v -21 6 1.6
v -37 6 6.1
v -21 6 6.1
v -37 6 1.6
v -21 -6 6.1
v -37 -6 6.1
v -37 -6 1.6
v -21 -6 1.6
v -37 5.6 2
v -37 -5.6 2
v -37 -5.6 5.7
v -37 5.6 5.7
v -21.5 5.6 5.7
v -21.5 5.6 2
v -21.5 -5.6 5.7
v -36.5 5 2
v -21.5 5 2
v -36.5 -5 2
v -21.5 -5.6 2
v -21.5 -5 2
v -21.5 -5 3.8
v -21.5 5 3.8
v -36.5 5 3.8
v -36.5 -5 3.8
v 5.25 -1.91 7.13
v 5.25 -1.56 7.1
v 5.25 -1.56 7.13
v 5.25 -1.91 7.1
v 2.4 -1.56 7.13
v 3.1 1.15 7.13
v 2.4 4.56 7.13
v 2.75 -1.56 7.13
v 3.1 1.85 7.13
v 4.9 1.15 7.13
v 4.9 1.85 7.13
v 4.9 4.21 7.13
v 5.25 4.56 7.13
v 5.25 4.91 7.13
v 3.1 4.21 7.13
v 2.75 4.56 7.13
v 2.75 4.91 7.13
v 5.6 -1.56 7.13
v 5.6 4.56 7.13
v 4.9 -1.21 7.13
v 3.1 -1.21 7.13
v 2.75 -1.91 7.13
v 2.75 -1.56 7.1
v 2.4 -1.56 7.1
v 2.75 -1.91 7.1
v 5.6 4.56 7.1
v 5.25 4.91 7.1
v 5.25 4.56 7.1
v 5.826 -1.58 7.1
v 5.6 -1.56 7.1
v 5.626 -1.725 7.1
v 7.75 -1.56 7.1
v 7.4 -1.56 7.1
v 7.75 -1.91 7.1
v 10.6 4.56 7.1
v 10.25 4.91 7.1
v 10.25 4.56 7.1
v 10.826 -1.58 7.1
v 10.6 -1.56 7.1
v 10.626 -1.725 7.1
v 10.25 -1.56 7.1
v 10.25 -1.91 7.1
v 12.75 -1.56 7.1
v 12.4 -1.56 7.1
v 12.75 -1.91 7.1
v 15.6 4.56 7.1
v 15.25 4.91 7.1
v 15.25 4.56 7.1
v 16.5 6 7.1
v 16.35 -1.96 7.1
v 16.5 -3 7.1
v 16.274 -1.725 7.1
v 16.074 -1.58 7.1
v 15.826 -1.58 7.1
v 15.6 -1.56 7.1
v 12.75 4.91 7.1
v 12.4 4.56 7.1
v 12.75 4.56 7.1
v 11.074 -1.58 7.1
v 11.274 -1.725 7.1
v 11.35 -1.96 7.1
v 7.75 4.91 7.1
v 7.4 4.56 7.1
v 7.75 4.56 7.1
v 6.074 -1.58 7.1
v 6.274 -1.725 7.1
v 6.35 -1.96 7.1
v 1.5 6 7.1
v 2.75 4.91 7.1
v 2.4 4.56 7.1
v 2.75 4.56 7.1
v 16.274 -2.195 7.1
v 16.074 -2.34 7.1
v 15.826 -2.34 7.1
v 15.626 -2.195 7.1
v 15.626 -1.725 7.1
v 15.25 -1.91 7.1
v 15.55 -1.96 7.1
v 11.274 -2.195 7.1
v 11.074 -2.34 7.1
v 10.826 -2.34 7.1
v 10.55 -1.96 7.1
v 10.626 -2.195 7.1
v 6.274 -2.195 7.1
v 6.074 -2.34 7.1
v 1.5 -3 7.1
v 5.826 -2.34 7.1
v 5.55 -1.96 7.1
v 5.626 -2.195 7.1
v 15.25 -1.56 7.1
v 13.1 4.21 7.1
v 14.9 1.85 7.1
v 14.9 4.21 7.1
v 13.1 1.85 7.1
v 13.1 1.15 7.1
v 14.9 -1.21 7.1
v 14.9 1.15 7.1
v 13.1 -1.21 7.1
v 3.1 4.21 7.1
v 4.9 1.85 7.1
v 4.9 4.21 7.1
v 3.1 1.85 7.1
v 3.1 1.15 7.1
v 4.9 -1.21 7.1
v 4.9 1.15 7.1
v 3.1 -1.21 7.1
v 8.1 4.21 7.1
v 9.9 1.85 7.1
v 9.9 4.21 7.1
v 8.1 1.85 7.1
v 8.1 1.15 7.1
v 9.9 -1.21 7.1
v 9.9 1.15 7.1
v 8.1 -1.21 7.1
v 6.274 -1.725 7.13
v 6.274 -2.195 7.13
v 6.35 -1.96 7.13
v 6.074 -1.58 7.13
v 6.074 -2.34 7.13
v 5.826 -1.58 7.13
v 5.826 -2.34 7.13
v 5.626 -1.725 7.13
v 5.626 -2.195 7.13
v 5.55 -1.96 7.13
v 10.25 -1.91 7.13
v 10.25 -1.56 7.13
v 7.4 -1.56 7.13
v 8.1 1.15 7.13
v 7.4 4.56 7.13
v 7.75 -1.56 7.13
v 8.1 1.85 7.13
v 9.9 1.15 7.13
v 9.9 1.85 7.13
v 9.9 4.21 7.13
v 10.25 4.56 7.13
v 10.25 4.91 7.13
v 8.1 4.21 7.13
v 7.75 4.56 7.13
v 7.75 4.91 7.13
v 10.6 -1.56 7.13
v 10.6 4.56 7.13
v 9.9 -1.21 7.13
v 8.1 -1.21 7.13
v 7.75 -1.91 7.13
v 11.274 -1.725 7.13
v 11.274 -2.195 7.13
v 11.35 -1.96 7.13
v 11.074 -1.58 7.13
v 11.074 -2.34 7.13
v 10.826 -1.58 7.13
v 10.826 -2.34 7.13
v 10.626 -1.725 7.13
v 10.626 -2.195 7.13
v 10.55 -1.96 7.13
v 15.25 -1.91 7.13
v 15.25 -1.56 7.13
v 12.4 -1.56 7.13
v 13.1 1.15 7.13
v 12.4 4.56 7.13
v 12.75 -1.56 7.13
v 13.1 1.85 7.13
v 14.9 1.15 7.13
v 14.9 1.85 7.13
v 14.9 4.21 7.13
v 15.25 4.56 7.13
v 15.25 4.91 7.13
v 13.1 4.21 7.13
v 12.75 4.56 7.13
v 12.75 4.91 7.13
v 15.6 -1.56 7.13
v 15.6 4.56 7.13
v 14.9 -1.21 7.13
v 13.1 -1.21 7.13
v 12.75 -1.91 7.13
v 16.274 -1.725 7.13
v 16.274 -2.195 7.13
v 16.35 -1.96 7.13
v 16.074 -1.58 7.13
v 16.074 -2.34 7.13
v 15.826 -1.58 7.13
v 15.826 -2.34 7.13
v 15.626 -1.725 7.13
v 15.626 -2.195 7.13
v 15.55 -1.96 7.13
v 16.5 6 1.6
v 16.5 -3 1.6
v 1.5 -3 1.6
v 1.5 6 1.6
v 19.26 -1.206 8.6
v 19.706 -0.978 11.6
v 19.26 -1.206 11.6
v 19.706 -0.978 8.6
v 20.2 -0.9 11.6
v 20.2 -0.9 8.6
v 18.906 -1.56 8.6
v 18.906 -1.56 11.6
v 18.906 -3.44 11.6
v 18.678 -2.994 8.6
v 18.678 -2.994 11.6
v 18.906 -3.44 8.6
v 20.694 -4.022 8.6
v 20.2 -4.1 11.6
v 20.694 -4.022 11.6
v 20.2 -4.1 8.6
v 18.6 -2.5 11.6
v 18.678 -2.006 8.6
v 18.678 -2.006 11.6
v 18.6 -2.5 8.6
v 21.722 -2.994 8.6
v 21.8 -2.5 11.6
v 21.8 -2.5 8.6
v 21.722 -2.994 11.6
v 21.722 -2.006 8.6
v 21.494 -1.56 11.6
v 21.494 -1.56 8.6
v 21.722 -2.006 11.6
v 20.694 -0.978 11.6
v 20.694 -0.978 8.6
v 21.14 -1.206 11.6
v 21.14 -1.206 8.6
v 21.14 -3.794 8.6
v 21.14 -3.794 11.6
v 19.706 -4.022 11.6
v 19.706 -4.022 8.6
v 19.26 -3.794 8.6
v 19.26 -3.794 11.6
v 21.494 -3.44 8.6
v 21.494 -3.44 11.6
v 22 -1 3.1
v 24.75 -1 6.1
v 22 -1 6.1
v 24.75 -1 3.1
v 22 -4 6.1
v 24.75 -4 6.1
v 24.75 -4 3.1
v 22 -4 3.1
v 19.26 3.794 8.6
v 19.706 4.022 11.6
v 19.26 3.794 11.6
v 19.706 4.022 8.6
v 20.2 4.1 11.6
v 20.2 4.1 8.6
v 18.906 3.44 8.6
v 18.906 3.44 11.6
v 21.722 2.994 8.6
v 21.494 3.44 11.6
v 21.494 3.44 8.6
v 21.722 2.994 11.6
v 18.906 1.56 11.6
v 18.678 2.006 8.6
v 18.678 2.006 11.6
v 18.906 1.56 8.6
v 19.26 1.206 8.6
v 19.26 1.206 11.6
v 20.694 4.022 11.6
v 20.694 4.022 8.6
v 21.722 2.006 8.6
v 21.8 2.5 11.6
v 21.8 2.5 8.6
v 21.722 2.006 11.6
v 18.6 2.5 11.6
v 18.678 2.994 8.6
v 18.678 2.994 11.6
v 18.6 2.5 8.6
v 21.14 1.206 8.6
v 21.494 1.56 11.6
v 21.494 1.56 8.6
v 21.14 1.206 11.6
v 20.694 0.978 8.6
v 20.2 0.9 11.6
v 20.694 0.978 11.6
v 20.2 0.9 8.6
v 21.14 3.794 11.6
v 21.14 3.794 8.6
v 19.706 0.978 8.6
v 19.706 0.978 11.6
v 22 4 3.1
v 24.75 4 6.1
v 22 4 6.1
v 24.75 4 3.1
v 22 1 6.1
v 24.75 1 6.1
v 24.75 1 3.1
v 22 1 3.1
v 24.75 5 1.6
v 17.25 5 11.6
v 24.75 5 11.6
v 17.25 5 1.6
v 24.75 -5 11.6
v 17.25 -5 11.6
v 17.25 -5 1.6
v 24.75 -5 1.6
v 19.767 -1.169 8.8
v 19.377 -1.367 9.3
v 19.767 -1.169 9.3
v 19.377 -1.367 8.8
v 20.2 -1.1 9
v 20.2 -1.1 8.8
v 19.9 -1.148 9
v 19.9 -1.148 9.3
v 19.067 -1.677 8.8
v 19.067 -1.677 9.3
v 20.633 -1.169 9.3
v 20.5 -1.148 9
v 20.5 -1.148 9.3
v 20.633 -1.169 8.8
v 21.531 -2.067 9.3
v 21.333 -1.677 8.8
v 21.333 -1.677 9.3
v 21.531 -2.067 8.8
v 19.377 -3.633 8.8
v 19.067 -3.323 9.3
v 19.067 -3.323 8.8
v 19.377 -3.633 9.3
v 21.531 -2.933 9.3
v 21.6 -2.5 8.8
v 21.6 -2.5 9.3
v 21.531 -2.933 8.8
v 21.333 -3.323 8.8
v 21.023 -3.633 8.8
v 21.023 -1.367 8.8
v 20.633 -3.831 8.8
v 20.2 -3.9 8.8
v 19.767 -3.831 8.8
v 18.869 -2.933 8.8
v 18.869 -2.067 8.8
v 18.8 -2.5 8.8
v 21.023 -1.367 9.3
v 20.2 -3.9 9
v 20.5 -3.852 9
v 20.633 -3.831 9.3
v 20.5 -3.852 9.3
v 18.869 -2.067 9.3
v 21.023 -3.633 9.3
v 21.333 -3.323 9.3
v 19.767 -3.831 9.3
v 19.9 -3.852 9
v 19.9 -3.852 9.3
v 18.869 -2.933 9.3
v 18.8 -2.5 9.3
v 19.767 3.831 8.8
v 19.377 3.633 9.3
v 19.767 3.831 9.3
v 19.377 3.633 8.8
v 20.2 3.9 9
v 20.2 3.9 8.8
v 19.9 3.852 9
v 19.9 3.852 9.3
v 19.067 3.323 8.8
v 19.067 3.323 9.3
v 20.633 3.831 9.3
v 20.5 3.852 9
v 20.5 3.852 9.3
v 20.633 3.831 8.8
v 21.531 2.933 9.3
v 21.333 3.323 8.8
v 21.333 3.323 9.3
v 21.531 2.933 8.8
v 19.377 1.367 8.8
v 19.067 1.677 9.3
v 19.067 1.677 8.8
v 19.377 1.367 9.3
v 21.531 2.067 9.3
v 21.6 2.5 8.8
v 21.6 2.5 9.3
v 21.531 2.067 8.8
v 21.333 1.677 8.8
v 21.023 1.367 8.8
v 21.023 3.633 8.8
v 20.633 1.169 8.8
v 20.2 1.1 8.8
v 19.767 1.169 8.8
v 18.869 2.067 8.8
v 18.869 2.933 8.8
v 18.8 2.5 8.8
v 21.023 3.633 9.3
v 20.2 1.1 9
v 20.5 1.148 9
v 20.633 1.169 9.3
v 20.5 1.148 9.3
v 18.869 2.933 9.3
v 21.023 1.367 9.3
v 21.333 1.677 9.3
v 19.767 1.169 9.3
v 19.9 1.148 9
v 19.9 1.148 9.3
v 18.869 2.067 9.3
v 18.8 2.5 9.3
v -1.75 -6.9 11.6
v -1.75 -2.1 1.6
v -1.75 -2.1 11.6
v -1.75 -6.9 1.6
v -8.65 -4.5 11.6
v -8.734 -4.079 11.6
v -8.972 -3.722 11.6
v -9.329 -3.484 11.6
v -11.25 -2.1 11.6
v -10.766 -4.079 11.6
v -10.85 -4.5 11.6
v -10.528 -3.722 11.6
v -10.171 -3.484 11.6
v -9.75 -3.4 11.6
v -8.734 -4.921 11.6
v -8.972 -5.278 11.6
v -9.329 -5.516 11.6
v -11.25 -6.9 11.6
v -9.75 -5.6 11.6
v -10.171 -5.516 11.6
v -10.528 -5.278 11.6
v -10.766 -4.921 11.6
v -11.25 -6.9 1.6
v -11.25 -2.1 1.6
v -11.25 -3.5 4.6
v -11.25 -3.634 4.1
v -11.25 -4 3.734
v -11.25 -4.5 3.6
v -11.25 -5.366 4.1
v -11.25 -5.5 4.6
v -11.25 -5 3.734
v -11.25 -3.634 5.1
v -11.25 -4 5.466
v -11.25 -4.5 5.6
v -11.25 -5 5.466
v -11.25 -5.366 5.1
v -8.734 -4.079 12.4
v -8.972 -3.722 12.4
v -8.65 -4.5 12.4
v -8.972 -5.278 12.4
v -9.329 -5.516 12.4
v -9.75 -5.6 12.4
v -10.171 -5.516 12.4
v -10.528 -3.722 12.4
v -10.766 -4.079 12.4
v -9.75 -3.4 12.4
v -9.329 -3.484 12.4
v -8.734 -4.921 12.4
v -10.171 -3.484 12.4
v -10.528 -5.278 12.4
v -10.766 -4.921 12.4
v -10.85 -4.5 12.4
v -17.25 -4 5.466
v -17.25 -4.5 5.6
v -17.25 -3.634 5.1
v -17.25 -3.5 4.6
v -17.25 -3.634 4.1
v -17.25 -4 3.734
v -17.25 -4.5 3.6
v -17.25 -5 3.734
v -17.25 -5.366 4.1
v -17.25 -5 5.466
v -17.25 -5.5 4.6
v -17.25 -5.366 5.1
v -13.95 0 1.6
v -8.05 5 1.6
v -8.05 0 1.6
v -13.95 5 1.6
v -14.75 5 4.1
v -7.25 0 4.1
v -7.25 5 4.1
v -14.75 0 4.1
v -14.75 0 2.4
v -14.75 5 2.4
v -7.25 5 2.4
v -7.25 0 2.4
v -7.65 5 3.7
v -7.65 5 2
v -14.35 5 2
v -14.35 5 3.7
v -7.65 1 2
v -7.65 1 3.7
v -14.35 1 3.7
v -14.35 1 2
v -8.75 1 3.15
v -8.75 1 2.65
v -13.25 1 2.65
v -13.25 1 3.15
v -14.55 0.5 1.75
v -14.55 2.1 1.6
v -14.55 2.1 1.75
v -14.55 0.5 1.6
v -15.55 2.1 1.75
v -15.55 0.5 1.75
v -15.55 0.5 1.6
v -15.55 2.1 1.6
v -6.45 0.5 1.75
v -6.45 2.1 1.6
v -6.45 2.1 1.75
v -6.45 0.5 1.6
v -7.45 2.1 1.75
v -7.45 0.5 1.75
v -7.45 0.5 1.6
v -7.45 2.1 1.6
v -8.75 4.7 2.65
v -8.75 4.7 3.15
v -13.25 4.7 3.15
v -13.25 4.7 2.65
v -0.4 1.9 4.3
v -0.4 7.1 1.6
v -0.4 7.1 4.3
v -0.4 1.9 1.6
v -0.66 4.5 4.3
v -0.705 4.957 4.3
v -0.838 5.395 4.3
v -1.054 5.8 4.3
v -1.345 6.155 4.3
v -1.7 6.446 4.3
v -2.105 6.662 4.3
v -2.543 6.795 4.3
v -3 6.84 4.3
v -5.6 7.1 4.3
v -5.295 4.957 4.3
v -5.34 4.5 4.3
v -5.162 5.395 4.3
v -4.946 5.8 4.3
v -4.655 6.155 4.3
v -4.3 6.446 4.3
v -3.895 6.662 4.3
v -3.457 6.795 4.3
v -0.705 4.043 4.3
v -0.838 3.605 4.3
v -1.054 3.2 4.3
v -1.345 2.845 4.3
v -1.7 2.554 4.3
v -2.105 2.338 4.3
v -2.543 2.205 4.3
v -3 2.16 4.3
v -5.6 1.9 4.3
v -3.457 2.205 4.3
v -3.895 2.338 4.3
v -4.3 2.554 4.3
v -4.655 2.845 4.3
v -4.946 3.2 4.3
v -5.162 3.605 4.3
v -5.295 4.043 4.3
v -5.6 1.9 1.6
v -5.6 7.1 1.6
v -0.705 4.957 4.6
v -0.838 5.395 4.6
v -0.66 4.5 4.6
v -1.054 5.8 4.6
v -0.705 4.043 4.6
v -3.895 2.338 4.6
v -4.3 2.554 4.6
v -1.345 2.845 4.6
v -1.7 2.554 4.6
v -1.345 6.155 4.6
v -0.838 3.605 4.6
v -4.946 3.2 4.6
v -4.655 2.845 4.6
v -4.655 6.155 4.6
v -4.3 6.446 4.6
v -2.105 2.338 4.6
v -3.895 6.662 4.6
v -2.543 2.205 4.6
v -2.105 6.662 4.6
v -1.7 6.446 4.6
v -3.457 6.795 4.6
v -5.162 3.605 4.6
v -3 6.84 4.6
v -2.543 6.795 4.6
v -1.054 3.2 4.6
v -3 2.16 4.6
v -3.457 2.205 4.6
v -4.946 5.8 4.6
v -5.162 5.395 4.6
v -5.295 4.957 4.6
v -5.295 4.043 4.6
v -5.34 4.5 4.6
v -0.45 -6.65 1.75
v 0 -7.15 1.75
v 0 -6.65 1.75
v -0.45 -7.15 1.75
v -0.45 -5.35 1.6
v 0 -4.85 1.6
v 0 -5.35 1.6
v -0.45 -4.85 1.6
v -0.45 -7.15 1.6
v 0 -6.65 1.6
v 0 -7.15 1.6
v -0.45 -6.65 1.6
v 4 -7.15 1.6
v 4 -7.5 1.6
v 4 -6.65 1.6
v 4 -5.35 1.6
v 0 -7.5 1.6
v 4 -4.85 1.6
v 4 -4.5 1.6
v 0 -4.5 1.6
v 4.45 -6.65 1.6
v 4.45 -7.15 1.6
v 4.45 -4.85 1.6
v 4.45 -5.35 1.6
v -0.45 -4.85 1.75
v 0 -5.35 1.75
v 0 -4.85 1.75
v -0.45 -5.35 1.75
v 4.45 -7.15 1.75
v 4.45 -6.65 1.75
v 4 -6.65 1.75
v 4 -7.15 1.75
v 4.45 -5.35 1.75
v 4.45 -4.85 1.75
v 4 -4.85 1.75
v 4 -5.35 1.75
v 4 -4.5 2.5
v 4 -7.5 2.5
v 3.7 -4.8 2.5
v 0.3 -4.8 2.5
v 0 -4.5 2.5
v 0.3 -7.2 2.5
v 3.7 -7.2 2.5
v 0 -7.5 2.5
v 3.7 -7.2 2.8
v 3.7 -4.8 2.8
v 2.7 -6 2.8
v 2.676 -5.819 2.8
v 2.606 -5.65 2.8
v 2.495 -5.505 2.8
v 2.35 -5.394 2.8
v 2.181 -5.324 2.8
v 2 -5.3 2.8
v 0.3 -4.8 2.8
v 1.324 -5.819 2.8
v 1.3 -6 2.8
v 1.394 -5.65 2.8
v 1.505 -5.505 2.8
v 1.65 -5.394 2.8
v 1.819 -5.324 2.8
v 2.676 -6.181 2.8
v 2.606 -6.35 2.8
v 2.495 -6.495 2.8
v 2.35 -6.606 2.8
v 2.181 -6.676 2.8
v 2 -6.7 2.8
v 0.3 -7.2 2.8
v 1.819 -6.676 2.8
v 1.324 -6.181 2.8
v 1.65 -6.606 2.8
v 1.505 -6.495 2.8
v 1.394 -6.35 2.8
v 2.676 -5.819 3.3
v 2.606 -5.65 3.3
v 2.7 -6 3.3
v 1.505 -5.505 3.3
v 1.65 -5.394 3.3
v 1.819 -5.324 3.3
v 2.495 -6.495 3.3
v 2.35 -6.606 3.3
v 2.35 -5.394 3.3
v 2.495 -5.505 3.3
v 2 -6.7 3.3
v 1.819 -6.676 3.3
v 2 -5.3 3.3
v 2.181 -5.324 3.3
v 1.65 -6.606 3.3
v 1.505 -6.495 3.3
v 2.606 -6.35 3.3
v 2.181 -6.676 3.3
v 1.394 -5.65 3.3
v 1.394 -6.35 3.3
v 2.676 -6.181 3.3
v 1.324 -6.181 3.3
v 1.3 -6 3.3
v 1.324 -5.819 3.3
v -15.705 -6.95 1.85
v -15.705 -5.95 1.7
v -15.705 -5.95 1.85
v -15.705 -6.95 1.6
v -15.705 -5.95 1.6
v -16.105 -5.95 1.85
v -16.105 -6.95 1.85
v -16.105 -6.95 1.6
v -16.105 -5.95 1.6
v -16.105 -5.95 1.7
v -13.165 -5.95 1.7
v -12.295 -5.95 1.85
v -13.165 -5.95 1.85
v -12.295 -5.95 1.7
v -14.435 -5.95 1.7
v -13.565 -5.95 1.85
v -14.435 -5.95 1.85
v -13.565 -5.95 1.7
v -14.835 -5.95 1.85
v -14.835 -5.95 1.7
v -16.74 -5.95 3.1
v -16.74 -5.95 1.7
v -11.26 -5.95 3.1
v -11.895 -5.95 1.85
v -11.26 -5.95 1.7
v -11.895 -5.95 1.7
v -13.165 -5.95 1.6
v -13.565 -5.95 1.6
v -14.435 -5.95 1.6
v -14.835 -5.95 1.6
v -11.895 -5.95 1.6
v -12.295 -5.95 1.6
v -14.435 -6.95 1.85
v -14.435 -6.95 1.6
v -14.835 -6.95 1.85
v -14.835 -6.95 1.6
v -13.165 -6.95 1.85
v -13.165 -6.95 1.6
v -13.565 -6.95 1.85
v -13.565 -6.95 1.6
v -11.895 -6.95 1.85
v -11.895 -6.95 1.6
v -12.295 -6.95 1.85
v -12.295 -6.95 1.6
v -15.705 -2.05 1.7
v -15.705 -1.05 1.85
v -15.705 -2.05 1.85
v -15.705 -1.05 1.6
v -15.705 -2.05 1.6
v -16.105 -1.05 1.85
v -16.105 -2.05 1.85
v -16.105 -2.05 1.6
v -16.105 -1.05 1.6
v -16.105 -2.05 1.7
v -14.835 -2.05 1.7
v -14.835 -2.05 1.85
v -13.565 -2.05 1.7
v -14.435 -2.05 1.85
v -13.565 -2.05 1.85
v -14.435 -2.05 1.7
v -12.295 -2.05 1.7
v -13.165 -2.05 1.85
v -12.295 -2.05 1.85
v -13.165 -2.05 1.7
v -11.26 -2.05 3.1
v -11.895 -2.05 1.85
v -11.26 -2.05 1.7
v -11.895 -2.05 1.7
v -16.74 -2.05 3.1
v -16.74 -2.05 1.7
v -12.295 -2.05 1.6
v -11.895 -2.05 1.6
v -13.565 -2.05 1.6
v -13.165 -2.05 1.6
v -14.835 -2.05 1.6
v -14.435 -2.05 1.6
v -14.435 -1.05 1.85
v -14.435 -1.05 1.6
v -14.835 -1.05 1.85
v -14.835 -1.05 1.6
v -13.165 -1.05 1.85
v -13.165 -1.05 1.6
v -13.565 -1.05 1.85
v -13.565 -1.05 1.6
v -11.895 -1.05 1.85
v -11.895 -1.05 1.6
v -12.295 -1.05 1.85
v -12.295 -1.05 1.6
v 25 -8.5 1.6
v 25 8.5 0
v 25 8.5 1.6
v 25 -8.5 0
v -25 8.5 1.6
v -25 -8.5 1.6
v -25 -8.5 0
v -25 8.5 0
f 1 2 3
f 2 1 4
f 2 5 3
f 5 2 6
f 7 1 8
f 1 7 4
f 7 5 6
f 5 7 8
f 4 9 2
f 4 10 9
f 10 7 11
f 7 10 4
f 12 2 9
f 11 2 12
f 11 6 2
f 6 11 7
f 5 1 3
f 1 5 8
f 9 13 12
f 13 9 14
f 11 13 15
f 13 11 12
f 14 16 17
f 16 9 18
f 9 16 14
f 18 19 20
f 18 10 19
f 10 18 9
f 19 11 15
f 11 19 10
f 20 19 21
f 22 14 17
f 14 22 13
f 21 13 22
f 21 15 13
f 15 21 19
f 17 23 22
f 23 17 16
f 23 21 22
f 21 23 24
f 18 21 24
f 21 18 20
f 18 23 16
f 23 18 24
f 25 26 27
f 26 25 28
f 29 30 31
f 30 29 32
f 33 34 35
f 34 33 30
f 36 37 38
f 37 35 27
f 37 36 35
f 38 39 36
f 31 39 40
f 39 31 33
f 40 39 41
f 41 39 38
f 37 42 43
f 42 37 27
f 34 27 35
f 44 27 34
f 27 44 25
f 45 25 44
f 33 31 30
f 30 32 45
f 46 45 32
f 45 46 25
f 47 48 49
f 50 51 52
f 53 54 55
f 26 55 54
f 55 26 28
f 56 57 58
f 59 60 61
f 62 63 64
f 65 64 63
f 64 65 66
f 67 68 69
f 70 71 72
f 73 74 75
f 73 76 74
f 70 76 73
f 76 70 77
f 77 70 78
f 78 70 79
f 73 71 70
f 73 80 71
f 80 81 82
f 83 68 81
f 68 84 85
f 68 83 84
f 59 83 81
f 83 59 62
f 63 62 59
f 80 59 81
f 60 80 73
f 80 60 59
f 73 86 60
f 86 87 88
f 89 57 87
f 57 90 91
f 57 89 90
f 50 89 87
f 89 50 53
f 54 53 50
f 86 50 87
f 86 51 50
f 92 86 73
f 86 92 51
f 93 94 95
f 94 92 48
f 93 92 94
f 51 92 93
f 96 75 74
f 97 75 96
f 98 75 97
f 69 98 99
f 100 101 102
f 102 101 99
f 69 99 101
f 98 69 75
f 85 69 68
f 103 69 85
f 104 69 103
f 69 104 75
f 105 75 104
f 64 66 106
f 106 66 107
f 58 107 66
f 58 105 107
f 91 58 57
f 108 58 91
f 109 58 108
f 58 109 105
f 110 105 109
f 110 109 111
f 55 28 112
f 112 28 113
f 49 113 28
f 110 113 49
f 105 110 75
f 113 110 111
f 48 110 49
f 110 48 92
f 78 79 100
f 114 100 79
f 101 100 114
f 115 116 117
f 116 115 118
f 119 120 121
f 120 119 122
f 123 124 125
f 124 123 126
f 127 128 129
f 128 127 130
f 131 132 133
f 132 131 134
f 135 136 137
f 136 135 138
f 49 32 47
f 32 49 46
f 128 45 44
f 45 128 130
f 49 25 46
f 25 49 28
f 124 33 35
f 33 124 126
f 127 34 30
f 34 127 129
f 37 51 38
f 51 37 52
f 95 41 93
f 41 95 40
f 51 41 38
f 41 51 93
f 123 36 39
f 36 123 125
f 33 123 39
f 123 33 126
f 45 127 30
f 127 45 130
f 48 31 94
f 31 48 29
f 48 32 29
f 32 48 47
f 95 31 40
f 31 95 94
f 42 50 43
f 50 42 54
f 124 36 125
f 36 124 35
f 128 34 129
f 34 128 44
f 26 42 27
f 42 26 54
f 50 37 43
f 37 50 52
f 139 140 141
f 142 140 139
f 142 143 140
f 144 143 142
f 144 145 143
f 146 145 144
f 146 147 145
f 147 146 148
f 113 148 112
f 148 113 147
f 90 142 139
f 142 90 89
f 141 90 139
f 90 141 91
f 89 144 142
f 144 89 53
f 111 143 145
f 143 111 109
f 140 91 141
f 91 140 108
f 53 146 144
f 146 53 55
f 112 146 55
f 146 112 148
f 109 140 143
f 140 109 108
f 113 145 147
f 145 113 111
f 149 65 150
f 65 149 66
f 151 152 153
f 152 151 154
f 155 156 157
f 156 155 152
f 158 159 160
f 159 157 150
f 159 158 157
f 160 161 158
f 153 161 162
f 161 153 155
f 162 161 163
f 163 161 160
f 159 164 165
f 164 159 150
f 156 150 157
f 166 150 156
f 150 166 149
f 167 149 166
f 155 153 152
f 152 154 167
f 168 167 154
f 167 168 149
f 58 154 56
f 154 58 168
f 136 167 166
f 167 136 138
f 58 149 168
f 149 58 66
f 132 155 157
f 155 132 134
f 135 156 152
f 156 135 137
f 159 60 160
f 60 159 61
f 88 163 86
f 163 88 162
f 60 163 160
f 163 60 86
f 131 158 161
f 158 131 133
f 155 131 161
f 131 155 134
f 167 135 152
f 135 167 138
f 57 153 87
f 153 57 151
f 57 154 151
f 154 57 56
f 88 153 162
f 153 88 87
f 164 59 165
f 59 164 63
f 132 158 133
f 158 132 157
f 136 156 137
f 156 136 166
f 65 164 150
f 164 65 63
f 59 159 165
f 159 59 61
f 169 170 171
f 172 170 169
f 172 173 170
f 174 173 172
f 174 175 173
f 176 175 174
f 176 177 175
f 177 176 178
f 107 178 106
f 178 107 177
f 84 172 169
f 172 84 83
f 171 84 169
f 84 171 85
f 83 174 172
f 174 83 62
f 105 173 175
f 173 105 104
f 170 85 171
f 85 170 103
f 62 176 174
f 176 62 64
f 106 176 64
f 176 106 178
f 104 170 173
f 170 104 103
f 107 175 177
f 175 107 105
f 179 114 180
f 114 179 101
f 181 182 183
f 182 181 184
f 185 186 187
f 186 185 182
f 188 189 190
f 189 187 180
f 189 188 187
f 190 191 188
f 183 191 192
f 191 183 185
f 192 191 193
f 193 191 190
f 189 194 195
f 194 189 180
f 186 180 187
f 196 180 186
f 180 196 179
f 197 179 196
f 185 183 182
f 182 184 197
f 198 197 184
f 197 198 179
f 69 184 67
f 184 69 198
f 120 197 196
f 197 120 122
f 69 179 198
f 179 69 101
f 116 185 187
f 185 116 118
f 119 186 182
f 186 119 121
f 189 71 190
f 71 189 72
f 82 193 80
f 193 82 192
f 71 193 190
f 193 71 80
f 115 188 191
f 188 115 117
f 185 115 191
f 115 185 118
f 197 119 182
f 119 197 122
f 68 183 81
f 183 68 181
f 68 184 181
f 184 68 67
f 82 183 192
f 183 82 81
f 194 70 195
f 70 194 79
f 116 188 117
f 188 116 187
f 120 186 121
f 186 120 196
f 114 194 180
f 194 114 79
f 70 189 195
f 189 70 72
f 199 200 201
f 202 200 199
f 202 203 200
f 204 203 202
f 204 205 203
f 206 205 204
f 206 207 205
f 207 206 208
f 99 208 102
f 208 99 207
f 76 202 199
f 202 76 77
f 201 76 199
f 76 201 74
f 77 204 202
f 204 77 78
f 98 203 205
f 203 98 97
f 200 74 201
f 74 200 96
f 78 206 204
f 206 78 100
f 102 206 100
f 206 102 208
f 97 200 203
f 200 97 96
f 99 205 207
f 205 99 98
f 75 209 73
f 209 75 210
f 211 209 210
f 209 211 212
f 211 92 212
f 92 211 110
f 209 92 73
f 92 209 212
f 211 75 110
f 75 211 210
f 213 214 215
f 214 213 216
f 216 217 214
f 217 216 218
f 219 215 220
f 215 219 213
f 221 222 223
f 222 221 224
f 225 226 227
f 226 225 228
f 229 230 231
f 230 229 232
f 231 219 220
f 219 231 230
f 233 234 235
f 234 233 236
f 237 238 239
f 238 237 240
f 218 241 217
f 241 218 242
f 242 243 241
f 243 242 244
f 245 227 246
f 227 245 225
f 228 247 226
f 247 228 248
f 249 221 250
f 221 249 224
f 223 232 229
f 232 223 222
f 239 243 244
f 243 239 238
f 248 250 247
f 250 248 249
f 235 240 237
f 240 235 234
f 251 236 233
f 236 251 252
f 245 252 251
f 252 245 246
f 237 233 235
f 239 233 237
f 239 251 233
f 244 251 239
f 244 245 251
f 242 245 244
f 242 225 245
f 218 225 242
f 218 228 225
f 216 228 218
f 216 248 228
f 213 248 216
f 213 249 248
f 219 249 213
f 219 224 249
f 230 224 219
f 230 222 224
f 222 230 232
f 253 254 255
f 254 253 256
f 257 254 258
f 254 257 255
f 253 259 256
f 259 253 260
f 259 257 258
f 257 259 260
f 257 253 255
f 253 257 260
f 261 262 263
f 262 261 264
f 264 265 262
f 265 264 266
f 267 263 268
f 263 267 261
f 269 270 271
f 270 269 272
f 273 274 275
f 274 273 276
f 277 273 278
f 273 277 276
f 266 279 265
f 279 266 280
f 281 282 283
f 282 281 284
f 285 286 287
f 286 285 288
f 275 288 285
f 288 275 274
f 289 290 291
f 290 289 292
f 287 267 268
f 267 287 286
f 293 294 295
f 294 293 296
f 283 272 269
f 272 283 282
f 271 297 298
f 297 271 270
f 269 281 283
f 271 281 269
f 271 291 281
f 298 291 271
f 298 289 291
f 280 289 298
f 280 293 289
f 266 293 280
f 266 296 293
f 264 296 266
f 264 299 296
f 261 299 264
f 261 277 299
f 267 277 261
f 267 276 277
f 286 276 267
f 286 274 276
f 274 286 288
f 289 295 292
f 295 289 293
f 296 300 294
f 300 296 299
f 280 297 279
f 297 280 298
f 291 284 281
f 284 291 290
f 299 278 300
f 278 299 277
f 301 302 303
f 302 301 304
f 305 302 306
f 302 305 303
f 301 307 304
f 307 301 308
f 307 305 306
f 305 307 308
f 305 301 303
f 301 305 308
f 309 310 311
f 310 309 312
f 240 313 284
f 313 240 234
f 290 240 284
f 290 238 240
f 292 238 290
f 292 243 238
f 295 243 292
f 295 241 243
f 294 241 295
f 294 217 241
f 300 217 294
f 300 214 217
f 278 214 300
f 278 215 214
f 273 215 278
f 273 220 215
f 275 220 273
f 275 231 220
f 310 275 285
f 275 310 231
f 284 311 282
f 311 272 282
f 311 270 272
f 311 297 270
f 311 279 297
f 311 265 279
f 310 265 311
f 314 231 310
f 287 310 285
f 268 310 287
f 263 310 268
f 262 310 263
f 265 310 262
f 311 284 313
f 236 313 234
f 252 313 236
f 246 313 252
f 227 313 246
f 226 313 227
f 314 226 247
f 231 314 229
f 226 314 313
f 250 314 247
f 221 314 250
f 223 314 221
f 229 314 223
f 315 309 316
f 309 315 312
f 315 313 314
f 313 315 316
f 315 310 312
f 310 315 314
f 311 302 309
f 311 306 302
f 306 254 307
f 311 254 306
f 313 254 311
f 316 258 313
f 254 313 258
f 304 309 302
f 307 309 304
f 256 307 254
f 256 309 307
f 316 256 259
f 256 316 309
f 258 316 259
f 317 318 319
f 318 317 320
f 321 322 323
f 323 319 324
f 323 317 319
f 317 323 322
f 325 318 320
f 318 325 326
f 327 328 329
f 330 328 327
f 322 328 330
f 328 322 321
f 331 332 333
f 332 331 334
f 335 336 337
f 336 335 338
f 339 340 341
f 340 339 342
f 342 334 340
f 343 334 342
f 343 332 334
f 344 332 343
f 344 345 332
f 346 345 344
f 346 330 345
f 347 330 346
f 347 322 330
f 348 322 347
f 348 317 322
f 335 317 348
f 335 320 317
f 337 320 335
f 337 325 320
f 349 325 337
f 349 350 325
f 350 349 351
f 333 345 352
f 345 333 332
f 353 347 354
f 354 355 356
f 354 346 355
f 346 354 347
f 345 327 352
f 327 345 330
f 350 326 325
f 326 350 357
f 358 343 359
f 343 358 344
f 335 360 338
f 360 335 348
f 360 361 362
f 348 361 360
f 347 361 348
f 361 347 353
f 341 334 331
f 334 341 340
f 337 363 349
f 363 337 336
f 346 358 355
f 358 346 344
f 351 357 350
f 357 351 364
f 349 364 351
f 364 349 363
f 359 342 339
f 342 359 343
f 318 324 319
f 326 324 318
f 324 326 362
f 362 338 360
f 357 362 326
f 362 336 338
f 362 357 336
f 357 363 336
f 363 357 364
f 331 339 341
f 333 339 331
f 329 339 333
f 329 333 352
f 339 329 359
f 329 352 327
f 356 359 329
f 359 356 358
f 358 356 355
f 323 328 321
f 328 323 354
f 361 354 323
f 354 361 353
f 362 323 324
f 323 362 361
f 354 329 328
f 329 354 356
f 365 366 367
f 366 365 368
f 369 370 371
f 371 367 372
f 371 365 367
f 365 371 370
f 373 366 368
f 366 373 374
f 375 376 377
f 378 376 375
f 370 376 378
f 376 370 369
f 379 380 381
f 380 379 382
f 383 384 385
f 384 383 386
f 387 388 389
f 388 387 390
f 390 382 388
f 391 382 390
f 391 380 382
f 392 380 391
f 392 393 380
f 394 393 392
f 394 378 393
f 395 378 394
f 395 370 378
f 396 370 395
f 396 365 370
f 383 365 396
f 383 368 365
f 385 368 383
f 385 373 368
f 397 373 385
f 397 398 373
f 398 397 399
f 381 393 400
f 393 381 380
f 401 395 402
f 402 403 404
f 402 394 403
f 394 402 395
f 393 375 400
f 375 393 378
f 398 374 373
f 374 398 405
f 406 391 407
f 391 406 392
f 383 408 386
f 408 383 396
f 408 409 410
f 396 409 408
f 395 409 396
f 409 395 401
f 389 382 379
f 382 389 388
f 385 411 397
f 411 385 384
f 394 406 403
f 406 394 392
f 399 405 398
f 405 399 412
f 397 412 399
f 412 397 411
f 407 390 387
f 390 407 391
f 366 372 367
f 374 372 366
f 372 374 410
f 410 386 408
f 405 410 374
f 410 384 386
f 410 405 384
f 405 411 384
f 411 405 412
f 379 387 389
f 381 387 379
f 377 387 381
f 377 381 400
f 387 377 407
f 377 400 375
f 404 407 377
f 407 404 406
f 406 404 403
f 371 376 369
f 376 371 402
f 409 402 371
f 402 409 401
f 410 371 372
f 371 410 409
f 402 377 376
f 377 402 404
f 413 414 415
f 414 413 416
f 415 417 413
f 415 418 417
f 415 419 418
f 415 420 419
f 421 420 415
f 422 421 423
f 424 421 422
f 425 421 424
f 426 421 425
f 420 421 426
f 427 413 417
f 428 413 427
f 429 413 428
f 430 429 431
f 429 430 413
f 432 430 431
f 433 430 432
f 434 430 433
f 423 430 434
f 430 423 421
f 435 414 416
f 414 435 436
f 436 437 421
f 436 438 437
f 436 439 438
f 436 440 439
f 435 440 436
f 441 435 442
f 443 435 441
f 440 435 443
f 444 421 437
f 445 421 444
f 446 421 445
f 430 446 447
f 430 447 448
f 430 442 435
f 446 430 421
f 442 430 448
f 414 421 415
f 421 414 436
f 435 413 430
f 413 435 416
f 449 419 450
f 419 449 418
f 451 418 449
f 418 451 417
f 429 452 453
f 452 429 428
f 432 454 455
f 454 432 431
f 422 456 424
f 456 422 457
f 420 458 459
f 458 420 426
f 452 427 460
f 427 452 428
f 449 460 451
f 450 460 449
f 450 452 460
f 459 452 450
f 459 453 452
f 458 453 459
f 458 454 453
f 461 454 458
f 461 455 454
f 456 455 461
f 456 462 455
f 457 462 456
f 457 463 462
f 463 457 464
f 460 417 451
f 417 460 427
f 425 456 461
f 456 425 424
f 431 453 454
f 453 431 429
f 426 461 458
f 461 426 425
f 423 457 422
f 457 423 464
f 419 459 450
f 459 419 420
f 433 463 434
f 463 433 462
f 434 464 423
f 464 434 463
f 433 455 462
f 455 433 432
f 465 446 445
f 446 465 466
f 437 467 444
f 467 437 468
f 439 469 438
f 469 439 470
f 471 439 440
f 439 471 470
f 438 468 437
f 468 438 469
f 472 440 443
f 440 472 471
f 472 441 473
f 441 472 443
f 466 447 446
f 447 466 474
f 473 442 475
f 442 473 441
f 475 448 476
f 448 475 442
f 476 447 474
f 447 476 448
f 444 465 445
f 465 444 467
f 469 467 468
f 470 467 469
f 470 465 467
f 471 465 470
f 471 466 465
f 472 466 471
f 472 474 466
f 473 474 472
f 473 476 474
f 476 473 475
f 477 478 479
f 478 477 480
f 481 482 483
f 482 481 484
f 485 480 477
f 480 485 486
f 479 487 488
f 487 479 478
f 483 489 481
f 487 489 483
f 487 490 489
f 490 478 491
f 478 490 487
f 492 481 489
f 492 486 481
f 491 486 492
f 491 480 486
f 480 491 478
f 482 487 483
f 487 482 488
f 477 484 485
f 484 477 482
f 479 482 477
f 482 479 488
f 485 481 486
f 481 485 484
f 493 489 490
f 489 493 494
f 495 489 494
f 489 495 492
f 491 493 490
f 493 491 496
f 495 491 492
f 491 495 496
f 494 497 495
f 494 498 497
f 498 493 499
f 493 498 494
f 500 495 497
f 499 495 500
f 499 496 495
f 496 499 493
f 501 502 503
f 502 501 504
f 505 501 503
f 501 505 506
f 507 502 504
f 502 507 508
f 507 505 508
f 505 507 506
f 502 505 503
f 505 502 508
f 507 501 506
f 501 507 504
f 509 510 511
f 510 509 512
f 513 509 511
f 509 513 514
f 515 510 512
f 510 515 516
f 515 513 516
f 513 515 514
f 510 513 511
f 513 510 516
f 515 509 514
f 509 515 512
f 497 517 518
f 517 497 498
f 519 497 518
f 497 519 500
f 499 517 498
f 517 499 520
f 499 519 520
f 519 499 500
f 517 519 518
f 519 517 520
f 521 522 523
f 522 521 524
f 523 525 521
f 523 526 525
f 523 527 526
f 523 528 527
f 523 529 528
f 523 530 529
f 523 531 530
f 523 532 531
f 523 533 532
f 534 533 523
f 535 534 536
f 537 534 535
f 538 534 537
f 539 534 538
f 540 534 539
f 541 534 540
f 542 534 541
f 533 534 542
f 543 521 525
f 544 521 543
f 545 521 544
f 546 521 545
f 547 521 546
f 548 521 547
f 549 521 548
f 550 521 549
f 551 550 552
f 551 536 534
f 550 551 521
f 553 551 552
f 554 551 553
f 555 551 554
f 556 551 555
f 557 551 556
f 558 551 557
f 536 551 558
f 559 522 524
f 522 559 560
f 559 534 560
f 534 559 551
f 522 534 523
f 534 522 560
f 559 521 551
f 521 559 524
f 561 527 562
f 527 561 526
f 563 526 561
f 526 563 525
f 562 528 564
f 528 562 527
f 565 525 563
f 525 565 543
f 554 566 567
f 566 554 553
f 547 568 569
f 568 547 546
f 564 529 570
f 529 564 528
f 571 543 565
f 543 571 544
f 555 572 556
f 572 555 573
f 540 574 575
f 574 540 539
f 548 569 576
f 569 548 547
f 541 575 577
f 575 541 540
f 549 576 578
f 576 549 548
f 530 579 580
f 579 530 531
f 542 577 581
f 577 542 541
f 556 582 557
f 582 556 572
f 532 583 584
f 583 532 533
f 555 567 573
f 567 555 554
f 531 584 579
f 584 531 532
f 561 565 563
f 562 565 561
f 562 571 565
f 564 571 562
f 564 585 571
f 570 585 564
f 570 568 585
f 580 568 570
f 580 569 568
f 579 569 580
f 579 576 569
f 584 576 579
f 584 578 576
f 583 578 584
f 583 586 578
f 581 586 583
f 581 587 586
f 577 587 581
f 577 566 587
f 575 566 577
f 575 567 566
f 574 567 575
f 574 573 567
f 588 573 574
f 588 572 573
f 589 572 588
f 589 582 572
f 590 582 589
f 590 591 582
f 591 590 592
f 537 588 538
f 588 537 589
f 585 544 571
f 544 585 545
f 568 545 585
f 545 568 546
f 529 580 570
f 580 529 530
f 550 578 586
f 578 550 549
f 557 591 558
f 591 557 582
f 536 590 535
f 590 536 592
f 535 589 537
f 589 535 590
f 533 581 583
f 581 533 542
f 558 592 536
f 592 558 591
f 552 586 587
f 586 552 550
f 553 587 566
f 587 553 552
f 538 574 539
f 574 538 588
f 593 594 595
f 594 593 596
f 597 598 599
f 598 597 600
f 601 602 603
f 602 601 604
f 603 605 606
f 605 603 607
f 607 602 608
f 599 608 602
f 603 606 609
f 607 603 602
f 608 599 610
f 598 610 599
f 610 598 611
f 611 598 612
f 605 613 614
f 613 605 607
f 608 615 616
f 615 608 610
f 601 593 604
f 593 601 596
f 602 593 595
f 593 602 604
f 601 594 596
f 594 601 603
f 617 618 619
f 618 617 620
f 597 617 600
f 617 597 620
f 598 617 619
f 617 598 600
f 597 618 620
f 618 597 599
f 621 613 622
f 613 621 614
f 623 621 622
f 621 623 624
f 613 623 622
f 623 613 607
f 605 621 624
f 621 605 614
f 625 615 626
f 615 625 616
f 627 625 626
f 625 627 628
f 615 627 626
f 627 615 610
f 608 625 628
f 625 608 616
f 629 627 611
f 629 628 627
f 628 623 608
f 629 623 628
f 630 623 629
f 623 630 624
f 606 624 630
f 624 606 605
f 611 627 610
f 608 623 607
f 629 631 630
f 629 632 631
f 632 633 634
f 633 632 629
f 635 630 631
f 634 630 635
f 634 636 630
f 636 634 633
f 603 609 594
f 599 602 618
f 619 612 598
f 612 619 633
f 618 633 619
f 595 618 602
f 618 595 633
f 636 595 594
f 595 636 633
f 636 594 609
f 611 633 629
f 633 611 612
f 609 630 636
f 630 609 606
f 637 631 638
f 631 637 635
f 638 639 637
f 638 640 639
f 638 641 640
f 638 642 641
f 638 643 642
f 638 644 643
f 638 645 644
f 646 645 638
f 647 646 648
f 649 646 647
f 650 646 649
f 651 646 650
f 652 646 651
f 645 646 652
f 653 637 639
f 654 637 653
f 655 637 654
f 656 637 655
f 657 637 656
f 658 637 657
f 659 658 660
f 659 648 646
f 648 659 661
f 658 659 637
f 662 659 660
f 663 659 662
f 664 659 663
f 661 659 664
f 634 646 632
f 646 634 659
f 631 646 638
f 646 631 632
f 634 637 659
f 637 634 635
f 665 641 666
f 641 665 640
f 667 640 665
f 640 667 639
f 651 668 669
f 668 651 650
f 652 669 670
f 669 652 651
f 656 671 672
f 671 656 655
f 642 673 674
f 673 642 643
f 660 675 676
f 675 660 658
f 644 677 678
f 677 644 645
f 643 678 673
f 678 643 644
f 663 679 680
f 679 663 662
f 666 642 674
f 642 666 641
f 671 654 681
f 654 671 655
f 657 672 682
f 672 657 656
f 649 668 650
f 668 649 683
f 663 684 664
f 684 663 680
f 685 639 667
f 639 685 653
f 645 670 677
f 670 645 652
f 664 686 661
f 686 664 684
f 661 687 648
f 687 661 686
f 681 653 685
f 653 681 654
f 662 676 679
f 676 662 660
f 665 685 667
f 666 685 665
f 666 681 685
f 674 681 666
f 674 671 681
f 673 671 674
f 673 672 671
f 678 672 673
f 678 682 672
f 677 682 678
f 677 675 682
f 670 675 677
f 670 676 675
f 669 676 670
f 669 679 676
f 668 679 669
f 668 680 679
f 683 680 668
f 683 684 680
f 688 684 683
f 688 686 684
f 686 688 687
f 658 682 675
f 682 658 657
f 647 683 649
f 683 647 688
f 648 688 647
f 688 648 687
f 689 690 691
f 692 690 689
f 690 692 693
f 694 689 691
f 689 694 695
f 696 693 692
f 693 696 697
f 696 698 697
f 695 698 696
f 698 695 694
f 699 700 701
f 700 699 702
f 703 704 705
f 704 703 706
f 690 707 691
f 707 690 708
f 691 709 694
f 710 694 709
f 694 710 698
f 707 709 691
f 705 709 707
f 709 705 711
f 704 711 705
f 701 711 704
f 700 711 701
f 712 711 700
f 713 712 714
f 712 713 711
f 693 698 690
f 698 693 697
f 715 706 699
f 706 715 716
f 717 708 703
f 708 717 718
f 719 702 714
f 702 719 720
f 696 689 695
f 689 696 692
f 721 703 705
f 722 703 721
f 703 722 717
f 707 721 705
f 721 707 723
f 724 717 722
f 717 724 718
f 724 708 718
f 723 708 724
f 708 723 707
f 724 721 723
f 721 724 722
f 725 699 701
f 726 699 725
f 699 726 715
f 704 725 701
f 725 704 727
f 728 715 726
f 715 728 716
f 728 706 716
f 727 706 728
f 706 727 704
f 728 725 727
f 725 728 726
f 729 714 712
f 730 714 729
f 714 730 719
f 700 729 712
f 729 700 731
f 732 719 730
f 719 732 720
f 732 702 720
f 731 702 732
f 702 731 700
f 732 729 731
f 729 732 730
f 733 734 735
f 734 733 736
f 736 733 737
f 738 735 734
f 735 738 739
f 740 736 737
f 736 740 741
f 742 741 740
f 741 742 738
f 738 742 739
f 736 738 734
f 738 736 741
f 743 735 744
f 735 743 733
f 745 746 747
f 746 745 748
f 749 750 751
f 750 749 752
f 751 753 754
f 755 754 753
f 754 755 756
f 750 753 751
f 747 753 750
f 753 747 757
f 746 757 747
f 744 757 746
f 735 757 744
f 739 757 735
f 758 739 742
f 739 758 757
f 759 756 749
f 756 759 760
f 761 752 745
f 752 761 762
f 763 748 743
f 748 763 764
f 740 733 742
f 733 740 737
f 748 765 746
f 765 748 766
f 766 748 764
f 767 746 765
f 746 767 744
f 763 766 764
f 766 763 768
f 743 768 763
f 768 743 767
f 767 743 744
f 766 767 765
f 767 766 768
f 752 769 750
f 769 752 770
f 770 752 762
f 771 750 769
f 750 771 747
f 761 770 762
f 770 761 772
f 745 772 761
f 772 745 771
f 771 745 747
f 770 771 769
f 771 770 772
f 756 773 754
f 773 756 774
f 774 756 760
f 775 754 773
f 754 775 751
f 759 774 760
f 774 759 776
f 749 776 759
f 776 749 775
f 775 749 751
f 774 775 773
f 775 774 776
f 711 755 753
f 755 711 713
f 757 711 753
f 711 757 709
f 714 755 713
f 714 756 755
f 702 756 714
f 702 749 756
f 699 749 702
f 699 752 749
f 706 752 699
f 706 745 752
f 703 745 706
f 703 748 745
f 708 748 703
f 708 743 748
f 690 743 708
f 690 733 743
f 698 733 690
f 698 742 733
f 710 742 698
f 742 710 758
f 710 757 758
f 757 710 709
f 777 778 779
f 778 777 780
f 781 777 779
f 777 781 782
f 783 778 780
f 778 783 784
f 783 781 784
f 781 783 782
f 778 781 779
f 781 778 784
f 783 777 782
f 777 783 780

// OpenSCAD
// file: ../lib/display.scad
// partbin - shared pieces for display modules: glass panels, LED matrix
// blocks, 7-segment displays, the LCD1602 frame, a window cutout for the
// case and a holder that grips a board by its edges.
//
//   use <../lib/display.scad>
//
// Same convention as every module: parts up (the display faces +z), the
// board centred on x/y, its underside at z = 0.

use <parts.scad>

function c_glass() = [0.04, 0.04, 0.06];
function c_screen() = [0.08, 0.10, 0.16];

// ------------------------------------------------------------ glass panel
// A TFT/OLED glass panel lying on the board: outline [x, y], thickness t,
// with the active (lit) area [x, y] centred at `off` from the panel centre.
module glass_panel(outline, t = 2.4, active, off = [0, 0]) {
    color(c_glass()) translate([-outline[0] / 2, -outline[1] / 2, 0]) cube([outline[0], outline[1], t]);
    color(c_screen()) translate([off[0] - active[0] / 2, off[1] - active[1] / 2, t]) cube([active[0], active[1], 0.02]);
}

// ------------------------------------------------------------- LED matrix
// An 8 x 8 LED matrix block (1088AS-style): `size` square, h tall, with
// the 64 round LEDs on top.
module led_matrix(size = 32, h = 7, led = [0.55, 0.06, 0.06], body = [0.12, 0.12, 0.12]) {
    p = size / 8;
    color(body) translate([-size / 2, -size / 2, 0]) cube([size, size, h]);
    color(led) for (i = [0:7], j = [0:7])
        translate([-size / 2 + p / 2 + i * p, -size / 2 + p / 2 + j * p, h]) cylinder(d = p * 0.75, h = 0.05, $fn = 16);
}

// ------------------------------------------------------- 7-segment digits
// A block of `digits` 7-segment digits, `size` [x, y], h tall.
module seg7_display(digits = 4, size = [30, 14], h = 7.2, colon = true) {
    color([0.92, 0.92, 0.92]) translate([-size[0] / 2, -size[1] / 2, 0]) cube([size[0], size[1], h - 0.05]);
    color([0.12, 0.12, 0.12]) translate([-size[0] / 2, -size[1] / 2, h - 0.05]) cube([size[0], size[1], 0.05]);
    dw = size[0] / digits;
    sh = size[1] * 0.68;  sw = dw * 0.5;  st = 0.7;
    color([0.35, 0.05, 0.05]) for (d = [0:digits - 1]) translate([-size[0] / 2 + dw * (d + 0.5), 0, h]) {
        for (y = [-1, 0, 1]) translate([-sw / 2, y * sh / 2 - st / 2, 0]) cube([sw, st, 0.03]);       // a g d
        for (x = [-1, 1], y = [-1, 1]) translate([x * sw / 2 - st / 2, y < 0 ? -sh / 2 : 0, 0]) cube([st, sh / 2, 0.03]);
        translate([sw / 2 + 0.7, -sh / 2 - 0.4, 0]) cylinder(d = 0.8, h = 0.03, $fn = 10);         // dot
    }
    if (colon) color([0.35, 0.05, 0.05]) for (y = [-1.6, 1.6]) translate([0, y, h]) cylinder(d = 0.8, h = 0.03, $fn = 10);
}

// ----------------------------------------------------------------- windows
// A rectangular window in the lid above a display. The lid's inside face is
// at z0 and it is `depth` thick; `size` [x, y] is the opening at the inside,
// and it widens outwards by `flare` mm on each side (0 = straight walls).
module rect_window(x, y, z0, depth, size, flare = 0, r = 0.5) {
    translate([x, y, z0 - 0.5]) hull() {
        linear_extrude(0.01) offset(r) offset(-r) square(size, center = true);
        translate([0, 0, depth + 1.0]) linear_extrude(0.01)
            offset(r + flare * (depth + 1) / depth) offset(-r) square(size, center = true);
    }
}

// ----------------------------------------------------------------- holder
// For boards without mounting holes: a ledge under the board's edges (`h`
// tall, so parts underneath have room), low walls around it with gaps to
// get a fingernail in, and `top` mm of wall above the board's top.
// The display is meant to be pressed against the lid from behind, so the
// walls only locate it. Add it to the case floor.
module edge_holder(size, t, h = 6, ledge = 1.5, wall = 1.2, clear = 0.3, top = 0.8) {
    x0 = size[0] / 2 + clear;  y0 = size[1] / 2 + clear;
    difference() {
        translate([-x0 - wall, -y0 - wall, -h]) cube([2 * (x0 + wall), 2 * (y0 + wall), h + t + top]);
        // room for the board
        translate([-x0, -y0, 0]) cube([2 * x0, 2 * y0, t + top + 1]);
        // room under it, inside the ledge
        translate([-x0 + ledge, -y0 + ledge, -h - 1]) cube([2 * (x0 - ledge), 2 * (y0 - ledge), h + 2]);
        // fingernail gaps in the middle of each side, down to the board's underside
        for (a = [0, 90]) rotate([0, 0, a]) {
            g = min(8, (a == 0 ? size[0] : size[1]) / 4);
            translate([-g / 2, -50, 0]) cube([g, 100, t + top + 1]);
        }
    }
}

// --------------------------------------------------------------- SD socket
// A push-push microSD socket (metal), its opening towards -y.
module microsd_socket() {
    color(c_tin()) translate([-7, -7.5, 0]) cube([14, 15, 1.8]);
    color(c_plastic()) translate([-5.5, -7.6, 0.3]) cube([11, 0.2, 1.2]);
}
// main file
// "XY-UP" USB step-up/down stick: USB-A plug in, adjustable 1.2-24 V out on a
// 2-way screw terminal, 3-digit LED voltmeter, a blue trimmer with a long
// brass screw, an ON/OFF button, micro-USB input as an alternative.
//
//   use <partbin/modules/usb_stepupdown_xyup.scad>
//
//   usb_stepupdown_xyup();                 the board, with its parts
//   usb_stepupdown_xyup_window(gap, wall)  an opening for the display in the lid
//   usb_stepupdown_xyup_size()             [length, width, pcb thickness] (without the plug)
//
// Where it sits: parts up, the board centred on x = y = 0, its underside at
// z = 0, the long side along x, the USB plug sticking out at the left (-x),
// the screw terminal at the right.

use <../lib/parts.scad>
use <../lib/display.scad>

// --------------------- typical; layout from the seller's photo
b_l      = 50.0;
b_w      = 17.0;
b_t      = 1.6;
plug_out = 12.0;    // the USB-A plug past the board's end
disp     = [9.0, 1.5];   // display centre

function usb_stepupdown_xyup_size() = [b_l, b_w, b_t];

module usb_stepupdown_xyup(detail = true) {
    color(c_pcb_blue()) translate([-b_l / 2, -b_w / 2, 0]) cube([b_l, b_w, b_t]);
    translate([-b_l / 2 + 4, 0, b_t]) rotate([0, 0, 90]) usb_a_male(plug_out + 4);
    translate([disp[0], disp[1], b_t]) seg7_display(3, [15.0, 9.0], 5.5, false, seg7_color("red"));
    translate([b_l / 2 - 4, 0, b_t]) rotate([0, 0, 90]) screw_terminal(2, 5.0, 10);
    translate([-6.5, -4.5, b_t]) { trimpot_3296(); color([0.75, 0.6, 0.25]) translate([-4.75, 0, 3]) rotate([0, -90, 0]) cylinder(d = 2, h = 6, $fn = 12); }
    if (detail) translate([0, 0, b_t]) {
        translate([-11, 5.0, 0]) usb_micro(7.5, 2.5, 5.0);
        translate([-3.0, 4.5, 0]) power_inductor(5.2, 3.0);
        translate([2.0, -6.0, 0]) smd_button([4.0, 3.0], 1.2, 0.5, 1.4);
        translate([-14, -4, 0]) soic(8, 3.9, 1.5);
    }
}

module usb_stepupdown_xyup_window(gap = 0.5, wall = 2) {
    rect_window(disp[0], disp[1], b_t + 5.5 + gap, wall, [15.4, 9.4], 0, 0.3);
}

show = "demo";
usb_stepupdown_xyup();
